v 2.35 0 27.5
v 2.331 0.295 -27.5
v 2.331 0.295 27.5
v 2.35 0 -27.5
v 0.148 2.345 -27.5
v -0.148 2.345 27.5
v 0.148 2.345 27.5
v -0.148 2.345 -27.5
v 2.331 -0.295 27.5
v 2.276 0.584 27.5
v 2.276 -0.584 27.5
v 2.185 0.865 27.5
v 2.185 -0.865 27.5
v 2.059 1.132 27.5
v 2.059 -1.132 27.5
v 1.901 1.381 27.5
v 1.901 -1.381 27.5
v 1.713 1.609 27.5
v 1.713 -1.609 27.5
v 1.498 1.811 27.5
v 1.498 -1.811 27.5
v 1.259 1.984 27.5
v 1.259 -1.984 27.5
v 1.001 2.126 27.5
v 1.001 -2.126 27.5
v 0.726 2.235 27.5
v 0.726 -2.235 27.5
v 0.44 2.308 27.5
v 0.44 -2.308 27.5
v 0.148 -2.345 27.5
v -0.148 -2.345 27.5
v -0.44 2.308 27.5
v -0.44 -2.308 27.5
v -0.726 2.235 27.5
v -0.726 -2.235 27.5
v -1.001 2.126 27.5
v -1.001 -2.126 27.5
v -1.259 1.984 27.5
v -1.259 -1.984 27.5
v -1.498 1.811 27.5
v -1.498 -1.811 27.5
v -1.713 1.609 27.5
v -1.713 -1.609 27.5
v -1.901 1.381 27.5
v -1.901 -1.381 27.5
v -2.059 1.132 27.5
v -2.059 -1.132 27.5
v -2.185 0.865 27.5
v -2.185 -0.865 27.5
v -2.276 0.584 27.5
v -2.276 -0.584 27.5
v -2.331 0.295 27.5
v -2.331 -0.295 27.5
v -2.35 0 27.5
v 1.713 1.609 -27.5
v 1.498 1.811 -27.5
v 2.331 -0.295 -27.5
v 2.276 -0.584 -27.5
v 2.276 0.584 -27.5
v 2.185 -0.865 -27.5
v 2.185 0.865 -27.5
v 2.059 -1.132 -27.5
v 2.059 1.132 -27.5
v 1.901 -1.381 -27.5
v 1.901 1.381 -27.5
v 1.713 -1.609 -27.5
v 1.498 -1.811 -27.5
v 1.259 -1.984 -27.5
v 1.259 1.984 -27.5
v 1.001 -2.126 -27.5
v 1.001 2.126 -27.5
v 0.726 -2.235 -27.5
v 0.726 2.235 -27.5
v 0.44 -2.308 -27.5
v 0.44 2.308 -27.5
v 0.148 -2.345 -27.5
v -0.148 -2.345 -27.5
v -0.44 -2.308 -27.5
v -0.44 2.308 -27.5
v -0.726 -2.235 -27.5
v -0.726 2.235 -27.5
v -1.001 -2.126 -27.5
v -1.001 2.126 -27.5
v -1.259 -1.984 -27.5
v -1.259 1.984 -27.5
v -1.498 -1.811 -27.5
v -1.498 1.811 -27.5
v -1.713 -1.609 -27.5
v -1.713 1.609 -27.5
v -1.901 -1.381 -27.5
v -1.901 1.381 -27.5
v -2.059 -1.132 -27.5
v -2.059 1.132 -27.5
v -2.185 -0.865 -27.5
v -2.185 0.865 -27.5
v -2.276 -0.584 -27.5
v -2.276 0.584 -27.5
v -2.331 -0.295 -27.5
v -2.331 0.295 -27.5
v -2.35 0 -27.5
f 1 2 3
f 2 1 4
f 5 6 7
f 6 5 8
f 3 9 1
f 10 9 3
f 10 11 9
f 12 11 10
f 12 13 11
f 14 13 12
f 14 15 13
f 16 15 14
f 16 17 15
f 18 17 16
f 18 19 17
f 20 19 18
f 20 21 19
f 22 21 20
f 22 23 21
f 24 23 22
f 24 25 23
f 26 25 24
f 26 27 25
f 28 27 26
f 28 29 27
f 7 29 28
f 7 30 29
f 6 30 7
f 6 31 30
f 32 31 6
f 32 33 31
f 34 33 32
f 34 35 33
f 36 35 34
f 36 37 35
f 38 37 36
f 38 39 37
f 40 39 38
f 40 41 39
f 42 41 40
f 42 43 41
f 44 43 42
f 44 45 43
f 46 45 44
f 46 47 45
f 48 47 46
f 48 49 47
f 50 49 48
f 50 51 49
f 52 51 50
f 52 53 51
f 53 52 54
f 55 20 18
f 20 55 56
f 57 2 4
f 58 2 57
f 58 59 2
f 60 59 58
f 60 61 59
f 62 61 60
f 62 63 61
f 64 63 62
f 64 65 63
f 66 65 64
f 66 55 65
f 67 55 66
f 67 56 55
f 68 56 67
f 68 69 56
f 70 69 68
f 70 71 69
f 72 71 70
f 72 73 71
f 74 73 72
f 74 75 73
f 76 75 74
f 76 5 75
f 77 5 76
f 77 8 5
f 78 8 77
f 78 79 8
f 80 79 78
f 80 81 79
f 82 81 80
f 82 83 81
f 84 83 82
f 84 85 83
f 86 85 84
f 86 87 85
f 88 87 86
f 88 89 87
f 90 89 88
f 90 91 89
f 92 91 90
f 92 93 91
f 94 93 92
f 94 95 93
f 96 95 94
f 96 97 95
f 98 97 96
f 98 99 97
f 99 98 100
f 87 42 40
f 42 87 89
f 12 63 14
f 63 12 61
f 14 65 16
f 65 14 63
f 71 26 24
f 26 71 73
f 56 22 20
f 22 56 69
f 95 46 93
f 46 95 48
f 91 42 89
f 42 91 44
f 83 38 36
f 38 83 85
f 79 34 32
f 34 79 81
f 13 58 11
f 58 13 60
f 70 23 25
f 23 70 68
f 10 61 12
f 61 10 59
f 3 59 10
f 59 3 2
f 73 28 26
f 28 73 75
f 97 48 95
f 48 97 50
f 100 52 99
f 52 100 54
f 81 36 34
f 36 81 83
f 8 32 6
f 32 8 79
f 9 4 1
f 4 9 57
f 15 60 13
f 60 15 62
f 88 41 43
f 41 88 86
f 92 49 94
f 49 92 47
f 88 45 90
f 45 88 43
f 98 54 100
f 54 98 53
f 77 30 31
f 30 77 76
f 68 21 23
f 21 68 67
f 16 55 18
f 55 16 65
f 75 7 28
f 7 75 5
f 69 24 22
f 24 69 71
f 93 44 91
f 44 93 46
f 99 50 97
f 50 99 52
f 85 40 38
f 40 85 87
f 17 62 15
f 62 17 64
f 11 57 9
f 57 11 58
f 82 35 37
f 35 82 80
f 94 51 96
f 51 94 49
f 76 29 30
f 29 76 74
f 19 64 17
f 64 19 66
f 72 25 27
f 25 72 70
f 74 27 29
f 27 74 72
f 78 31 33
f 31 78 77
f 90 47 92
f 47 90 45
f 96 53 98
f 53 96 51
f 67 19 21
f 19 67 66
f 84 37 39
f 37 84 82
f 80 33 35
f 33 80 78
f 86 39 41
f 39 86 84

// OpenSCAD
$fn = 50;


difference() {
	union() {
		translate(v = [0, 0, -27.5000000000]) {
			cylinder(h = 55, r = 2.3500000000);
		}
	}
	union() {
		translate(v = [0, 0, -100.0000000000]) {
			cylinder(h = 200, r = 0);
		}
	}
}
